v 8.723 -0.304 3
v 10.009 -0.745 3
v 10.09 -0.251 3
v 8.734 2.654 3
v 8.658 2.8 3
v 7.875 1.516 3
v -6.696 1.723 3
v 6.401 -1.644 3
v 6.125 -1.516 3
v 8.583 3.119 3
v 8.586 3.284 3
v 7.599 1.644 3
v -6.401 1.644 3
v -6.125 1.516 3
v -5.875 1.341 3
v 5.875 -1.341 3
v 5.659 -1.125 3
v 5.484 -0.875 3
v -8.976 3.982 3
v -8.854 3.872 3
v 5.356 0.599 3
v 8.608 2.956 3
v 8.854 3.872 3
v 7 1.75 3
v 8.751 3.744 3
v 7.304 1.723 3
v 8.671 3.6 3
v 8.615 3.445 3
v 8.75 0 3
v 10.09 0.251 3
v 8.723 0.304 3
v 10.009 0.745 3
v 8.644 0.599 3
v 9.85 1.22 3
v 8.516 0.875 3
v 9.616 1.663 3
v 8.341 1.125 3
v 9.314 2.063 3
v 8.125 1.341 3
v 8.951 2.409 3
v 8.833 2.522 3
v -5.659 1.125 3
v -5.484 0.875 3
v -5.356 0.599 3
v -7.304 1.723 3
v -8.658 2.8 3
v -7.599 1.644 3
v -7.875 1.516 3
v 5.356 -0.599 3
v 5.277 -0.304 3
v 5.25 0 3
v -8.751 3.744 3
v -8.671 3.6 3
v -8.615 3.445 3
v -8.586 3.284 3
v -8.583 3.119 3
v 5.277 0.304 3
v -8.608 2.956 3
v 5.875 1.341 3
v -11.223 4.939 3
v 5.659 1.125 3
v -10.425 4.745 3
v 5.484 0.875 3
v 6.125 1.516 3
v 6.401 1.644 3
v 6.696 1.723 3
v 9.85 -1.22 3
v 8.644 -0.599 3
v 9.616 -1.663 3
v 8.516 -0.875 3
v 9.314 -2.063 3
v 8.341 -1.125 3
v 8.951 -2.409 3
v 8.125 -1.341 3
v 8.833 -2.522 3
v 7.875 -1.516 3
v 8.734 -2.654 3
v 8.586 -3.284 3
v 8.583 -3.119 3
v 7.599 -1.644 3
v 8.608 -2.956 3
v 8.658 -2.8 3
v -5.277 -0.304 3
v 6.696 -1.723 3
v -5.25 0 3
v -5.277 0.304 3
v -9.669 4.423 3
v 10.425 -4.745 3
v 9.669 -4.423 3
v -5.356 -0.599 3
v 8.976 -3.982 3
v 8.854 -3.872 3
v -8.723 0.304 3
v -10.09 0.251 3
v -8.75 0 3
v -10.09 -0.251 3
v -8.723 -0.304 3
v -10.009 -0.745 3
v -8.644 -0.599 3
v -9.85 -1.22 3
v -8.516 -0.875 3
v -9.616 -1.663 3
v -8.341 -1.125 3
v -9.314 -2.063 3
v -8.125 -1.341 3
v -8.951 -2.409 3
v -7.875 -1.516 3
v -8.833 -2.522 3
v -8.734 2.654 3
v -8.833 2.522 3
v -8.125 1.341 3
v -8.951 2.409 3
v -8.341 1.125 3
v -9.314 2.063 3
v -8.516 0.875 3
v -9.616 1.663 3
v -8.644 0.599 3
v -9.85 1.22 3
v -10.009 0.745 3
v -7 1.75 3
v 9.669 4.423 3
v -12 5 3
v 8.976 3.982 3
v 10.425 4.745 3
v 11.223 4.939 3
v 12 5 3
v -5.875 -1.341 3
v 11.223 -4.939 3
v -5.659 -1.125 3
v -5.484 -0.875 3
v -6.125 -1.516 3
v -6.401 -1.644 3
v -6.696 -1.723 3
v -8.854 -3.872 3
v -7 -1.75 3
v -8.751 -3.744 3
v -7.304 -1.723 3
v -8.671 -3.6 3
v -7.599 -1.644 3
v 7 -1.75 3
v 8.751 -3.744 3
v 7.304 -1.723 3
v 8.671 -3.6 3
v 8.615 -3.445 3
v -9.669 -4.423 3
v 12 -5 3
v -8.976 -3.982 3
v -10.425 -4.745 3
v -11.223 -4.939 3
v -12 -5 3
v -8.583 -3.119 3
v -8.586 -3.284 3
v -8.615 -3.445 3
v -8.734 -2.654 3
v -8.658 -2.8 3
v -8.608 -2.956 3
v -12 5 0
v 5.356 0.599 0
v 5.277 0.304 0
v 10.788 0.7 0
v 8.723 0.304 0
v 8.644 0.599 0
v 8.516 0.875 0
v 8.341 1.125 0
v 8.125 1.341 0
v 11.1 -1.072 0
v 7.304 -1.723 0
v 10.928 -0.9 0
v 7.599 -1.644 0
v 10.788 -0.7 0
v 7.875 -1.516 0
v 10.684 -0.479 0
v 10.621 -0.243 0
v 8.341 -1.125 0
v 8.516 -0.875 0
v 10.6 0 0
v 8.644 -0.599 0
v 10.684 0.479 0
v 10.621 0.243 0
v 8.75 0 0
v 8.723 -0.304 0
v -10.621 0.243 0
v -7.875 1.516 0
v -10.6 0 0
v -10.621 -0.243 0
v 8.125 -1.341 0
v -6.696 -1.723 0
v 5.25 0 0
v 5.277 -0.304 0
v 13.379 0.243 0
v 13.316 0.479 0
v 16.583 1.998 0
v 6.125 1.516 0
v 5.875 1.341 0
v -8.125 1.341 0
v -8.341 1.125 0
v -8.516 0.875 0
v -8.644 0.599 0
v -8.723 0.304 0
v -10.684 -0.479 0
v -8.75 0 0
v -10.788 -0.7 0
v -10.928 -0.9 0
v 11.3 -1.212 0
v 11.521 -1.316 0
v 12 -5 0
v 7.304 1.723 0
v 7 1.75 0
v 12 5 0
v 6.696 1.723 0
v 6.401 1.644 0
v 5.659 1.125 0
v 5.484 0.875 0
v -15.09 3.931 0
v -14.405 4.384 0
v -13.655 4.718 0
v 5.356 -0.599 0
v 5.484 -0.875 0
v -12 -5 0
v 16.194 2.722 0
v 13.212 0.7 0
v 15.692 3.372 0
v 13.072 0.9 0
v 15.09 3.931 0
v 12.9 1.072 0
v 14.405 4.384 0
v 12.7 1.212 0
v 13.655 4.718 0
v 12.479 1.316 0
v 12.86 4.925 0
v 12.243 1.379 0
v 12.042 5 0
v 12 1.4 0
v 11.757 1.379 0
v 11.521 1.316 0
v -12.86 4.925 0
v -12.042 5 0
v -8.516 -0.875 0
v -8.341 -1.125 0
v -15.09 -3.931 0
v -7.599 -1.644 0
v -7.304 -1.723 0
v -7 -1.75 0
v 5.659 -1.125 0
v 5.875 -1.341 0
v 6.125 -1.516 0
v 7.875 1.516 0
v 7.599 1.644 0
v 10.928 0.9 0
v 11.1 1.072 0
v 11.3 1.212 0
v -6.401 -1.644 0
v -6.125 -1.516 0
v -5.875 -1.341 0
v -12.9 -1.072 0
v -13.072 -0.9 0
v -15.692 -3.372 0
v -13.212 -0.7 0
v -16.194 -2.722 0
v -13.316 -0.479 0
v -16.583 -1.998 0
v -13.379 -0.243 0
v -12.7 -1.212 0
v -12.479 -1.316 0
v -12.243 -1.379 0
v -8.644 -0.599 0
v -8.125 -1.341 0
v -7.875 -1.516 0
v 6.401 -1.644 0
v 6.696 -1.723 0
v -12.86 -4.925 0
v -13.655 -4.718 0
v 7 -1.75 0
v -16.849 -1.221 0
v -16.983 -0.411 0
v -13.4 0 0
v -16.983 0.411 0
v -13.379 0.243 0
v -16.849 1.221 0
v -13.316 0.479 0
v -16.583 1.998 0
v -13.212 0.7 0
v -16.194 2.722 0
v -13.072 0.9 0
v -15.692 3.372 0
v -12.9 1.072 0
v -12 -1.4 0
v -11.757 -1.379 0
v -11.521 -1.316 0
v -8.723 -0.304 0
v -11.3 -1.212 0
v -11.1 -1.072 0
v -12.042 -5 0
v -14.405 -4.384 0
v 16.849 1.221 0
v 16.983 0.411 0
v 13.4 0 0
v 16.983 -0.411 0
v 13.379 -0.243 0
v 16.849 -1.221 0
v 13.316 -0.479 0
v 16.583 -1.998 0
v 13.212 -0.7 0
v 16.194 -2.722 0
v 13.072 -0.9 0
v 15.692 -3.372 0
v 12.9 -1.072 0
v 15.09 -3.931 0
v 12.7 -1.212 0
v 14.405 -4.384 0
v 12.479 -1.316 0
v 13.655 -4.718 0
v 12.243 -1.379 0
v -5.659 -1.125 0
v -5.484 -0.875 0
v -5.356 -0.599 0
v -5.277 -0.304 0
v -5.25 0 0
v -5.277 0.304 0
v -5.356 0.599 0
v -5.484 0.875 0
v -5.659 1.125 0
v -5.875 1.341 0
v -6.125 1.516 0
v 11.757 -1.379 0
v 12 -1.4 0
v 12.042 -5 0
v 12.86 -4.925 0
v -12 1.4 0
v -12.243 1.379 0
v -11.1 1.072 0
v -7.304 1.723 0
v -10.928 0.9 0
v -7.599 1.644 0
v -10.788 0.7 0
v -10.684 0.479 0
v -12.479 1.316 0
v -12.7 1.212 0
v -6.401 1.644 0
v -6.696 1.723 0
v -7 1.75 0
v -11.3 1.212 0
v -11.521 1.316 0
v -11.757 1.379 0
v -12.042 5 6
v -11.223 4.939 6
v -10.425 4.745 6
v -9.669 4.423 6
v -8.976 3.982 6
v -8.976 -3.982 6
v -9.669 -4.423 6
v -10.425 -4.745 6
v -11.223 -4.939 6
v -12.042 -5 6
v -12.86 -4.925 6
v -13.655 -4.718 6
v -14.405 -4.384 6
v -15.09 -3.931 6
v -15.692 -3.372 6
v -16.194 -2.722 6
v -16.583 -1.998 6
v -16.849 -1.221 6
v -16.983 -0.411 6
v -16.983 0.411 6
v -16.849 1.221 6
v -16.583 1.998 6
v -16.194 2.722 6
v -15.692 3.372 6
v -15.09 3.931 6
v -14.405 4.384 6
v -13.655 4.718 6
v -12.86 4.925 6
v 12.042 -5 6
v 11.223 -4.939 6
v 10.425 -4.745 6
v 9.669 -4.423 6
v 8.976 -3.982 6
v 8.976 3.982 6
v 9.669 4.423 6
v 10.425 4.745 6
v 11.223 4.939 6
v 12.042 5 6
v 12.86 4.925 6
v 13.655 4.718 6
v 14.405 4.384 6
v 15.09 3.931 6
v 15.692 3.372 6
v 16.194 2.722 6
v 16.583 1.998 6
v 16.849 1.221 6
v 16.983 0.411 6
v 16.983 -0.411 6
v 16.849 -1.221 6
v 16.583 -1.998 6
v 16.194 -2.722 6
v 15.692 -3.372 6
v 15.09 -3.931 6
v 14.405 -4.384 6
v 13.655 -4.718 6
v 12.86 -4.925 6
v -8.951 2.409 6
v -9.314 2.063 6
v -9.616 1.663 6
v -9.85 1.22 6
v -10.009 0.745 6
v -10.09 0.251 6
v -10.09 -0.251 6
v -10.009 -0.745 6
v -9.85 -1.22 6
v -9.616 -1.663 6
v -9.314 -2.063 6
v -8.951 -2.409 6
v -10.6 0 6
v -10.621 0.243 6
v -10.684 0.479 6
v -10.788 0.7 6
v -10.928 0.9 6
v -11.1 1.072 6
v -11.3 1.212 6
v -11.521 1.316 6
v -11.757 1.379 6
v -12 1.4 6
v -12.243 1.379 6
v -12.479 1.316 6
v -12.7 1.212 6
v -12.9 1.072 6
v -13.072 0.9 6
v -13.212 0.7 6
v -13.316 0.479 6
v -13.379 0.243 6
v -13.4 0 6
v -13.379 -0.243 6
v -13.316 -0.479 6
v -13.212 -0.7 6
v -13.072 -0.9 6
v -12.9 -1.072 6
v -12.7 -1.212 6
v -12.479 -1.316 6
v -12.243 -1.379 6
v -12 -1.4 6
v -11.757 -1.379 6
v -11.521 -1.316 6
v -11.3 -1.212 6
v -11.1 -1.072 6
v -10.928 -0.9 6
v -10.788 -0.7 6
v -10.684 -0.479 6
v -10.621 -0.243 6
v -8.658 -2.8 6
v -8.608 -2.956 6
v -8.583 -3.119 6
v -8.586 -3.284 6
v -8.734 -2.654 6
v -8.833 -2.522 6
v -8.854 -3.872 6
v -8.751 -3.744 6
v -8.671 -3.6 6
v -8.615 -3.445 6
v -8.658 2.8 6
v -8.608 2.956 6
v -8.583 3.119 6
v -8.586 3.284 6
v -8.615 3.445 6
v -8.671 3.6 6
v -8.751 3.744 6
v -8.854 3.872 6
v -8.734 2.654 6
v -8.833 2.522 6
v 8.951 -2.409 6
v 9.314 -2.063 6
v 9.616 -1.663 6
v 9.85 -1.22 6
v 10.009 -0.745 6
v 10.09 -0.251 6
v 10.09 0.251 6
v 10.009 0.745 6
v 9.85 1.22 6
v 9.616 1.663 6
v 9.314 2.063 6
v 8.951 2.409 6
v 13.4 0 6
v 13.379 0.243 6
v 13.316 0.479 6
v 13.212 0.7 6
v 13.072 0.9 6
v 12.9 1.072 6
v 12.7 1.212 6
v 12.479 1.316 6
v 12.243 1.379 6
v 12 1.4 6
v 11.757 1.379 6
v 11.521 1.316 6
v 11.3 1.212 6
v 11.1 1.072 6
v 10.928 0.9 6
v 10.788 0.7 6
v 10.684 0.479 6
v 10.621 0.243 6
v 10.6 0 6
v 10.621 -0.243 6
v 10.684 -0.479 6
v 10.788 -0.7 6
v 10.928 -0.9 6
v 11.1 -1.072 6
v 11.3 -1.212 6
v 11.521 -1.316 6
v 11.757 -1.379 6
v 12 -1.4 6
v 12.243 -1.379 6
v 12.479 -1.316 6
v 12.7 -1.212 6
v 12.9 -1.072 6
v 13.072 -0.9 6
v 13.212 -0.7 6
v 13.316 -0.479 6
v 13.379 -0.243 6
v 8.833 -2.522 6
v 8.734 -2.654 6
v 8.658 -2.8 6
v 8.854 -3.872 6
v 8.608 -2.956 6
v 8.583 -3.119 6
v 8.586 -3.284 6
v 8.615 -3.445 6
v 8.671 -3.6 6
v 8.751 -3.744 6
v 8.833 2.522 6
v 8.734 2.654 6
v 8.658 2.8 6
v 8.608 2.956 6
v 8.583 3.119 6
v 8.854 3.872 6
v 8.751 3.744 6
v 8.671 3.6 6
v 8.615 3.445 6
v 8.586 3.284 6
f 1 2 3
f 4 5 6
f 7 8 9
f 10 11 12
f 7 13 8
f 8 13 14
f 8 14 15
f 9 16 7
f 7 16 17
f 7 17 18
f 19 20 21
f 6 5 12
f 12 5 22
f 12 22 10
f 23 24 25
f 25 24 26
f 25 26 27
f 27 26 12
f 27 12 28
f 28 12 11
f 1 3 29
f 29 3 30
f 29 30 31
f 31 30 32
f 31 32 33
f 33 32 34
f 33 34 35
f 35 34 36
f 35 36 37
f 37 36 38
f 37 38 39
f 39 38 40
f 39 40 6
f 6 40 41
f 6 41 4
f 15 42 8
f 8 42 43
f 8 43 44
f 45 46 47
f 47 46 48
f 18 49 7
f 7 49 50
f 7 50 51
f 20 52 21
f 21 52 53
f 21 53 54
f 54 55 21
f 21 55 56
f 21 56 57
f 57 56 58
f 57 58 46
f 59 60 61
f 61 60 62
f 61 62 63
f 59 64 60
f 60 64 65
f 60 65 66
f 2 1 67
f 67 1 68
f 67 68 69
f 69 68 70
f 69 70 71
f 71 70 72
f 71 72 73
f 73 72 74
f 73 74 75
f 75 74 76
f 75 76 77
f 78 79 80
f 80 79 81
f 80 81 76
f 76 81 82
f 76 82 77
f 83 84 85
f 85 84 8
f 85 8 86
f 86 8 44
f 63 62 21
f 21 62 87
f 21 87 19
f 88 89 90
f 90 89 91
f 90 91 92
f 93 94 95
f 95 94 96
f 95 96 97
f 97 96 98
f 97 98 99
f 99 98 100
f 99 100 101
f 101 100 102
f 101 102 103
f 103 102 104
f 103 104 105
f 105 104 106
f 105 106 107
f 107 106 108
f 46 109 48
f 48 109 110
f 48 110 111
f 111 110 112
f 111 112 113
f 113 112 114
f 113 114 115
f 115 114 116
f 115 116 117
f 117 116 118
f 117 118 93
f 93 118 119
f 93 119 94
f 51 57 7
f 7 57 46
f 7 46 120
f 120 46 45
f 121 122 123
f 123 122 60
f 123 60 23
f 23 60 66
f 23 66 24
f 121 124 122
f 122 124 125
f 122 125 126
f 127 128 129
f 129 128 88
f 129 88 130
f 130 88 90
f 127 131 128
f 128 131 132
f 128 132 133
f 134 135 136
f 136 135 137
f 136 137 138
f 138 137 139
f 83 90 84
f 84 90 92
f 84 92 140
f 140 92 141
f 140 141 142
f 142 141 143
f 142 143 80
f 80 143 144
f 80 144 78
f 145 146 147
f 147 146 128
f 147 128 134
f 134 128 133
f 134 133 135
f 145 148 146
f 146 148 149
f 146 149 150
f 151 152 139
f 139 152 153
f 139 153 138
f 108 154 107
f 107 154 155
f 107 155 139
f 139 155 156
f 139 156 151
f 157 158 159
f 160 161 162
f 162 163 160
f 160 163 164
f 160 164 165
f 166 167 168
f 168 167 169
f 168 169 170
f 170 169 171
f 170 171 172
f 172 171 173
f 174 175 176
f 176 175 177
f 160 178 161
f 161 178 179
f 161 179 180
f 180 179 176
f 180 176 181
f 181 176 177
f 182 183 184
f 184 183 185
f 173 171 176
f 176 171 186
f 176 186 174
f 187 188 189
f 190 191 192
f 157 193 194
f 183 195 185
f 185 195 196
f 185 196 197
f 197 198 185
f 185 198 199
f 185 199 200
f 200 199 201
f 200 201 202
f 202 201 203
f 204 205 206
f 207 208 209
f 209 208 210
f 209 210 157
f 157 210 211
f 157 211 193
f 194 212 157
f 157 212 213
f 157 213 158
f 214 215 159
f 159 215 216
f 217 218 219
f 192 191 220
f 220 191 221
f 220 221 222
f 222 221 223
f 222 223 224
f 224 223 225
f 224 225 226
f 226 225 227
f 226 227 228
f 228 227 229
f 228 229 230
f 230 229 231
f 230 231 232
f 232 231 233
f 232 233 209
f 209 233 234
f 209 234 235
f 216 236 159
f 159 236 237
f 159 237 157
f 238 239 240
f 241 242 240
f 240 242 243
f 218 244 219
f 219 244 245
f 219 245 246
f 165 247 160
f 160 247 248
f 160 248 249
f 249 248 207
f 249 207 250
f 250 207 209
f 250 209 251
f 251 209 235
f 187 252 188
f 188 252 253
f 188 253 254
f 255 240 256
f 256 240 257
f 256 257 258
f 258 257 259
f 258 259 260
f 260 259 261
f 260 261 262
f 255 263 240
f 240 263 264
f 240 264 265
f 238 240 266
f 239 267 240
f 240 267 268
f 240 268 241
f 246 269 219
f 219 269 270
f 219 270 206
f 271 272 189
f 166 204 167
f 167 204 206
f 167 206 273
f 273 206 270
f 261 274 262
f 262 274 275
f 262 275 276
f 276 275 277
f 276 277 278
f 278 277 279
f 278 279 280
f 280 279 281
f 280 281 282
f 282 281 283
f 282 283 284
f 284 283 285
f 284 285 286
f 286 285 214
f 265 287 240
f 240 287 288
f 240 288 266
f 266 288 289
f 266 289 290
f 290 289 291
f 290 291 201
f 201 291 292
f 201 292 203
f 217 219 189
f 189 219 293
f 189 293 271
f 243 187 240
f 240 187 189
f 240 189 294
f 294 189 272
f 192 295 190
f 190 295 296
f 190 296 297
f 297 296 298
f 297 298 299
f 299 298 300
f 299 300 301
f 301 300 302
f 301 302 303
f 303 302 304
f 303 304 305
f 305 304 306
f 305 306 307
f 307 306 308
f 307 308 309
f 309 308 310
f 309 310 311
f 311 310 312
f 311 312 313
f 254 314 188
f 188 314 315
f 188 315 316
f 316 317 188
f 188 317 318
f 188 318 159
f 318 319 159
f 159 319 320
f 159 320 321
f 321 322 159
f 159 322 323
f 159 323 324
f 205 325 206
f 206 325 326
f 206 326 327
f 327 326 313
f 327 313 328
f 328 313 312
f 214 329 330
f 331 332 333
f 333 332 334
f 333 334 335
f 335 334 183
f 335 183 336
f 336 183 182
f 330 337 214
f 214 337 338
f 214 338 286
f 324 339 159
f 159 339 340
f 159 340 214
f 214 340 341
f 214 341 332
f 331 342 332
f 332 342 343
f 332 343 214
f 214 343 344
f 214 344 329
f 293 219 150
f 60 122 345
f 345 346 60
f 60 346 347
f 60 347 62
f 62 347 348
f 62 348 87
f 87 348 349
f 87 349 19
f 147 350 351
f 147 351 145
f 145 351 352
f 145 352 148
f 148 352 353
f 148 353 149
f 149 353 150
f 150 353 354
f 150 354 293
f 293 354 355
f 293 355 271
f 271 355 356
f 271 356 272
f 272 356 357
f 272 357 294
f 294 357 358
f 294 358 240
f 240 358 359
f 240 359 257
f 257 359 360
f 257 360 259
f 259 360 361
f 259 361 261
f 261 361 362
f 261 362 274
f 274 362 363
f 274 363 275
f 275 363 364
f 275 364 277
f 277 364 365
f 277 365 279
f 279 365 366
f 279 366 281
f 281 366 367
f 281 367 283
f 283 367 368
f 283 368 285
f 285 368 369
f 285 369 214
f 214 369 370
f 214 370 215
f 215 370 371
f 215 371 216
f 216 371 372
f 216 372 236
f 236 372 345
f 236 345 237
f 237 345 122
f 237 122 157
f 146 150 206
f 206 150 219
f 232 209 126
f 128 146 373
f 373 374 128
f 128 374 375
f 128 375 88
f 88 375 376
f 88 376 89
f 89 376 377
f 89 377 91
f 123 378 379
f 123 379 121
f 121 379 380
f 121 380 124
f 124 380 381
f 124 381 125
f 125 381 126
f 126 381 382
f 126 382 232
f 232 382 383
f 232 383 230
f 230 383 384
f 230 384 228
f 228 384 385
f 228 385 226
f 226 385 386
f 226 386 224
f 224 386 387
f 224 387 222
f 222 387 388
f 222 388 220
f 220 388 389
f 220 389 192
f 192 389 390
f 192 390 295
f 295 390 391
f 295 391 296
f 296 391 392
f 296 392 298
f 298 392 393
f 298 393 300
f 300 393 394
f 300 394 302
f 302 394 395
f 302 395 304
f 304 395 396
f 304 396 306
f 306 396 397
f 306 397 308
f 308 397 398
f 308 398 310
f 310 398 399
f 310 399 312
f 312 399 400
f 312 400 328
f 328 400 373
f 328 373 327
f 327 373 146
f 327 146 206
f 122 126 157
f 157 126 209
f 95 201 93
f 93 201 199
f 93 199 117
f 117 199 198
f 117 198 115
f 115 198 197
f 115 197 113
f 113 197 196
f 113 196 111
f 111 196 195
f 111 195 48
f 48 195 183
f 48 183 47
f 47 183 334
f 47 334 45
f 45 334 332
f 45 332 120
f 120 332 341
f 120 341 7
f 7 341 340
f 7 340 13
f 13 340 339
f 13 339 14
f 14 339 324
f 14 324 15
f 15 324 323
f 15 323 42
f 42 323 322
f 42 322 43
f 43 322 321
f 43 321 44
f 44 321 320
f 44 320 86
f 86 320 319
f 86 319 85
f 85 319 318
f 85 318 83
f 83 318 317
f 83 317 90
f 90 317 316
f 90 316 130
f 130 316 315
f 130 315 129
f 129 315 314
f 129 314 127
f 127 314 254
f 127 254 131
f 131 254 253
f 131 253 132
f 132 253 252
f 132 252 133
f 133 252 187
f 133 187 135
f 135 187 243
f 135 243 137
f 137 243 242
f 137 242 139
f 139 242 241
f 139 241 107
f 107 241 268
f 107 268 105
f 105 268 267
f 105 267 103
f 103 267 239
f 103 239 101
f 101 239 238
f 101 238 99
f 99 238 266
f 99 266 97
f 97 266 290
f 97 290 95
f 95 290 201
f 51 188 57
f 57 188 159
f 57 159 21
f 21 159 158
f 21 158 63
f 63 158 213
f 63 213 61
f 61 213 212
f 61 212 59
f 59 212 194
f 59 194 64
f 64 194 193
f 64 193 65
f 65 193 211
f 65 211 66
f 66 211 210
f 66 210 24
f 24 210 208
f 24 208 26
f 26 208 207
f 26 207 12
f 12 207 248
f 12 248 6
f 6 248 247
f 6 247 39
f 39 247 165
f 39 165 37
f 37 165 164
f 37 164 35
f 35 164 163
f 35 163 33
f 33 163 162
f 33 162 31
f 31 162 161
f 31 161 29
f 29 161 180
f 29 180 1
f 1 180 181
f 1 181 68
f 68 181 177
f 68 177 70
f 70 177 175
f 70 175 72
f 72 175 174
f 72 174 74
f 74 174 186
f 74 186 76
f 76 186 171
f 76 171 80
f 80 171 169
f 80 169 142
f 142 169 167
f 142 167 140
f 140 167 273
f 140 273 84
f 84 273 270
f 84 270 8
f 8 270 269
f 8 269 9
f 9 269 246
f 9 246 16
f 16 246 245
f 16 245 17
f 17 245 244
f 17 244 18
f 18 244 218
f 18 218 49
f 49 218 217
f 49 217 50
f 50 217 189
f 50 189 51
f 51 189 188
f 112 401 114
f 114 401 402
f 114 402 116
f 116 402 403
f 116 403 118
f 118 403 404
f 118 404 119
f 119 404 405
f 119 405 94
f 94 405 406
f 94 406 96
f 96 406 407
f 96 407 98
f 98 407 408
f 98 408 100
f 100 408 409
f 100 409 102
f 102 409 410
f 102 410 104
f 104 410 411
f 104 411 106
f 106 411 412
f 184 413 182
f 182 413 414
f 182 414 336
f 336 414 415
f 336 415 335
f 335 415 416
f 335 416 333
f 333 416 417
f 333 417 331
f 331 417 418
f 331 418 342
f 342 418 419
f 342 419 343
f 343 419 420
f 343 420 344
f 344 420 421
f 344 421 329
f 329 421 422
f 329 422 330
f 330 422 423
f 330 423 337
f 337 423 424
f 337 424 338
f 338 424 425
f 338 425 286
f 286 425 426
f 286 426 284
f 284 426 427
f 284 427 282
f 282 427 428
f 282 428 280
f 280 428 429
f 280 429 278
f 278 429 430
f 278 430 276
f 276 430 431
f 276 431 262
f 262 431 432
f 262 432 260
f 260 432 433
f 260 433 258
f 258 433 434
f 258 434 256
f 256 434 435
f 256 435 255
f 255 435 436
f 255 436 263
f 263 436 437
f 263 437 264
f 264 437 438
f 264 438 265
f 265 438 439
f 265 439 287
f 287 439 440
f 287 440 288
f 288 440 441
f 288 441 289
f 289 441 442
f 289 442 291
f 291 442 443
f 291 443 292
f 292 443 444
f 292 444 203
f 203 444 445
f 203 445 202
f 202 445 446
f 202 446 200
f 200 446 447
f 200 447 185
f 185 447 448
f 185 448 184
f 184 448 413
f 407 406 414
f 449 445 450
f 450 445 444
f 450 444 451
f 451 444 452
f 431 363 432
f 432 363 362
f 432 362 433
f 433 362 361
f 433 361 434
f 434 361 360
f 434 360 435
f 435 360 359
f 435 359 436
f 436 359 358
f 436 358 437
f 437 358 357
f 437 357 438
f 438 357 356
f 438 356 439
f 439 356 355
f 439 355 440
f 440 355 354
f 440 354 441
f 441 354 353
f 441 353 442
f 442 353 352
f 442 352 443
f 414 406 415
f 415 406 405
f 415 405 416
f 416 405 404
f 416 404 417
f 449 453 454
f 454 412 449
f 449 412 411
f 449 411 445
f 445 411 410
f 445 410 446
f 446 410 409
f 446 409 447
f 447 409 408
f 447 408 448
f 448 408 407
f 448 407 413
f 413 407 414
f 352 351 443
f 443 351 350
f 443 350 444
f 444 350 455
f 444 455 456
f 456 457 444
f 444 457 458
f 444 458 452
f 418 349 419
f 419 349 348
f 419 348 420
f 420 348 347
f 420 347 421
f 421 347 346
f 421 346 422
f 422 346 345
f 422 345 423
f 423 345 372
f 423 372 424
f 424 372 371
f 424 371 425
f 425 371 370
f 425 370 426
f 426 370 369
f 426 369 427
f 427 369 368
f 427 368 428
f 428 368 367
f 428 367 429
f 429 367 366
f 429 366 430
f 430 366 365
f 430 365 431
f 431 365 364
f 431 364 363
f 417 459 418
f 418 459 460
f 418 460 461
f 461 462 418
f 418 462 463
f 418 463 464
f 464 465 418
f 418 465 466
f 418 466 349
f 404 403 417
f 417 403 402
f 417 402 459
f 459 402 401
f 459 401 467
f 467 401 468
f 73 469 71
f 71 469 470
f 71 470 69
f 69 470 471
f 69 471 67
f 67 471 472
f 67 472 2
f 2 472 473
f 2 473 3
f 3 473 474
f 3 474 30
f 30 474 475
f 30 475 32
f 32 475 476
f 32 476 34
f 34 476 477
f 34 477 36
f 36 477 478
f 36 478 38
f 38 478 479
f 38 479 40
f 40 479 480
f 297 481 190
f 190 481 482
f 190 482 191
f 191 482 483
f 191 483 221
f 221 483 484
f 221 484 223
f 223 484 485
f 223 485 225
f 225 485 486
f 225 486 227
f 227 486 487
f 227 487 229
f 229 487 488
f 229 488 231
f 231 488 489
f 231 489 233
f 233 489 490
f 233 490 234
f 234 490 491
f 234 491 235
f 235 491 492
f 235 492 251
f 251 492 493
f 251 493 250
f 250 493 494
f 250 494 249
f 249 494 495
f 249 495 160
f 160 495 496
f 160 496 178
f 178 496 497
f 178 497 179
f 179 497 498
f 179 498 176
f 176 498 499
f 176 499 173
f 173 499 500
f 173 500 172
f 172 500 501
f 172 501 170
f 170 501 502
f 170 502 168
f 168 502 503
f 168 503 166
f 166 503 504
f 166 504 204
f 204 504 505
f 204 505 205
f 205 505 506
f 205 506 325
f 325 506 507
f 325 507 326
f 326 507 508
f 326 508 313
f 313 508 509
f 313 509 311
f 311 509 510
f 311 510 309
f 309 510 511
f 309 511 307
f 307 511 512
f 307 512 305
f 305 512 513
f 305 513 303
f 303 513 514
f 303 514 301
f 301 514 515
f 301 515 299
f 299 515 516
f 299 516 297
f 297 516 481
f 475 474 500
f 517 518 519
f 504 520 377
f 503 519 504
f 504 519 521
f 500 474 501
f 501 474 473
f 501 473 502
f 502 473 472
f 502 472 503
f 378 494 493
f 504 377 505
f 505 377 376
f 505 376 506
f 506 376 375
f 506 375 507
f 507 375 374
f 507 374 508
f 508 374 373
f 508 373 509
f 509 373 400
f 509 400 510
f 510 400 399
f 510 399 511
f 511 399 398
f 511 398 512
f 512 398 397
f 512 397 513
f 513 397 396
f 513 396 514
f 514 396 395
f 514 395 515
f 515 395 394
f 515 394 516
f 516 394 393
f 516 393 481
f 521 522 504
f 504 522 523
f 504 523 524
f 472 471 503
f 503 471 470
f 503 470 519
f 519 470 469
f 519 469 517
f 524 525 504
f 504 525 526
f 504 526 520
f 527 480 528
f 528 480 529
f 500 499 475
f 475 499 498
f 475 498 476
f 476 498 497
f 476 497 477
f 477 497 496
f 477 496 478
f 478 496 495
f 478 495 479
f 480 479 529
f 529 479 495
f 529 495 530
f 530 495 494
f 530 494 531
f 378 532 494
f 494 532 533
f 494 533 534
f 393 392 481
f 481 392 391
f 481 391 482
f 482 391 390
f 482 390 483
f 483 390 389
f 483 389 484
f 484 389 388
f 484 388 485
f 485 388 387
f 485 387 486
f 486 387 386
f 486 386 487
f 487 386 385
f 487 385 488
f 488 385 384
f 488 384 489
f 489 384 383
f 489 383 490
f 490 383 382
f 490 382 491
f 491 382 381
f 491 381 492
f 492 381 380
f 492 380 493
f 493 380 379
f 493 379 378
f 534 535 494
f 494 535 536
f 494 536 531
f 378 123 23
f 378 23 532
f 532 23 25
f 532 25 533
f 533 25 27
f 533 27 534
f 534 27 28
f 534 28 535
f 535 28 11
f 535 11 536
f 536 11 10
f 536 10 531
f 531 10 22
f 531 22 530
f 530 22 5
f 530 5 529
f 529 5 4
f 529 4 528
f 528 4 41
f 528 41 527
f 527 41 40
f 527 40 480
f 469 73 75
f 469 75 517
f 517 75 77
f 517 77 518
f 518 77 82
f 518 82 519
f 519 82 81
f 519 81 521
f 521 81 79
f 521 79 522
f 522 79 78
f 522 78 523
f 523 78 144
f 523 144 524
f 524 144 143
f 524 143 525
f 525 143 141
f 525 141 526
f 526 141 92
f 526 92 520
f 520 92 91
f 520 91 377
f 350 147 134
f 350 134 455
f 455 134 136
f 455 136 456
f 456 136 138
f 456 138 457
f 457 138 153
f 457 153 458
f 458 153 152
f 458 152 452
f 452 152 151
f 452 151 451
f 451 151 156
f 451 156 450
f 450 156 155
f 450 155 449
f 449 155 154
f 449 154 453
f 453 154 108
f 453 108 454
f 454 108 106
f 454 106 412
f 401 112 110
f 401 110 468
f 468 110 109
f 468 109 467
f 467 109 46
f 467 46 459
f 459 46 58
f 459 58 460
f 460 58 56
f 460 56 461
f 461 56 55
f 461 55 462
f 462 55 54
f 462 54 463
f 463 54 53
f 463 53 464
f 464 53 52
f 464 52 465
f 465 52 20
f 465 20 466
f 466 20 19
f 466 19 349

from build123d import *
from build123d.topology import SkipClean

# Parameters (mm, degrees)
SKETCH1_R                = 1.75
BOSS_EXTRUDE1_DEPTH      = 3
BOSS_EXTRUDE2_DEPTH      = 3
BOSS_EXTRUDE2_DEPTH_BACK = 3
SKETCH2_R                = 1.4
FILLET1_R                = 1


with BuildPart() as part:
    # Sketch1 → Boss-Extrude1 (new body)
    with BuildSketch(Plane.XY):
        with BuildLine():
            Line((-12, 5), (12, 5))
            ThreePointArc((12, 5), (17, 0), (12, -5))
            Line((12, -5), (-12, -5))
            ThreePointArc((-12, -5), (-17, 0), (-12, 5))
        make_face()
        with Locations((-7, 0)):
            Circle(SKETCH1_R, mode=Mode.SUBTRACT)
        with Locations((-12, 0)):
            Circle(SKETCH1_R, mode=Mode.SUBTRACT)
        with Locations((12, 0)):
            Circle(SKETCH1_R, mode=Mode.SUBTRACT)
        with Locations((7, 0)):
            Circle(SKETCH1_R, mode=Mode.SUBTRACT)
    extrude(amount=BOSS_EXTRUDE1_DEPTH)

    # Sketch2 → Boss-Extrude2 (add, two sides: drawn at the far end of the back side and taken through both)
    # profile 1 of 2: a face of its own
    with SkipClean():  # the faces are left unmerged after this step: merging them gives an invalid solid
        with BuildSketch(Plane.XY.offset(3).offset(-BOSS_EXTRUDE2_DEPTH_BACK)):
            with BuildLine():
                ThreePointArc((-7.961, 2.947283), (-17, 0), (-7.961, -2.947283))
                ThreePointArc((-7.961, -2.947283), (-10.1, 0), (-7.961, 2.947283))
            make_face()
            with Locations((-12, 0)):
                Circle(SKETCH2_R, mode=Mode.SUBTRACT)
        # profile 2 of 2: a face of its own
        with BuildSketch(Plane.XY.offset(3).offset(-BOSS_EXTRUDE2_DEPTH_BACK)):
            with BuildLine():
                ThreePointArc((7.961, 2.947283), (10.1, 0), (7.961, -2.947283))
                ThreePointArc((7.961, -2.947283), (17, 0), (7.961, 2.947283))
            make_face()
            with Locations((12, 0)):
                Circle(SKETCH2_R, mode=Mode.SUBTRACT)
        extrude(amount=BOSS_EXTRUDE2_DEPTH + BOSS_EXTRUDE2_DEPTH_BACK)

    # Fillet1
    fillet1_edges = [part.edges().sort_by_distance(p)[0] for p in [
        (7.961, 2.947283, 4.5),
        (7.961, -2.947283, 4.5),
        (-7.961, -2.947283, 4.5),
        (-7.961, 2.947283, 4.5),
    ]]
    fillet(fillet1_edges, radius=FILLET1_R)


solid = part.part
